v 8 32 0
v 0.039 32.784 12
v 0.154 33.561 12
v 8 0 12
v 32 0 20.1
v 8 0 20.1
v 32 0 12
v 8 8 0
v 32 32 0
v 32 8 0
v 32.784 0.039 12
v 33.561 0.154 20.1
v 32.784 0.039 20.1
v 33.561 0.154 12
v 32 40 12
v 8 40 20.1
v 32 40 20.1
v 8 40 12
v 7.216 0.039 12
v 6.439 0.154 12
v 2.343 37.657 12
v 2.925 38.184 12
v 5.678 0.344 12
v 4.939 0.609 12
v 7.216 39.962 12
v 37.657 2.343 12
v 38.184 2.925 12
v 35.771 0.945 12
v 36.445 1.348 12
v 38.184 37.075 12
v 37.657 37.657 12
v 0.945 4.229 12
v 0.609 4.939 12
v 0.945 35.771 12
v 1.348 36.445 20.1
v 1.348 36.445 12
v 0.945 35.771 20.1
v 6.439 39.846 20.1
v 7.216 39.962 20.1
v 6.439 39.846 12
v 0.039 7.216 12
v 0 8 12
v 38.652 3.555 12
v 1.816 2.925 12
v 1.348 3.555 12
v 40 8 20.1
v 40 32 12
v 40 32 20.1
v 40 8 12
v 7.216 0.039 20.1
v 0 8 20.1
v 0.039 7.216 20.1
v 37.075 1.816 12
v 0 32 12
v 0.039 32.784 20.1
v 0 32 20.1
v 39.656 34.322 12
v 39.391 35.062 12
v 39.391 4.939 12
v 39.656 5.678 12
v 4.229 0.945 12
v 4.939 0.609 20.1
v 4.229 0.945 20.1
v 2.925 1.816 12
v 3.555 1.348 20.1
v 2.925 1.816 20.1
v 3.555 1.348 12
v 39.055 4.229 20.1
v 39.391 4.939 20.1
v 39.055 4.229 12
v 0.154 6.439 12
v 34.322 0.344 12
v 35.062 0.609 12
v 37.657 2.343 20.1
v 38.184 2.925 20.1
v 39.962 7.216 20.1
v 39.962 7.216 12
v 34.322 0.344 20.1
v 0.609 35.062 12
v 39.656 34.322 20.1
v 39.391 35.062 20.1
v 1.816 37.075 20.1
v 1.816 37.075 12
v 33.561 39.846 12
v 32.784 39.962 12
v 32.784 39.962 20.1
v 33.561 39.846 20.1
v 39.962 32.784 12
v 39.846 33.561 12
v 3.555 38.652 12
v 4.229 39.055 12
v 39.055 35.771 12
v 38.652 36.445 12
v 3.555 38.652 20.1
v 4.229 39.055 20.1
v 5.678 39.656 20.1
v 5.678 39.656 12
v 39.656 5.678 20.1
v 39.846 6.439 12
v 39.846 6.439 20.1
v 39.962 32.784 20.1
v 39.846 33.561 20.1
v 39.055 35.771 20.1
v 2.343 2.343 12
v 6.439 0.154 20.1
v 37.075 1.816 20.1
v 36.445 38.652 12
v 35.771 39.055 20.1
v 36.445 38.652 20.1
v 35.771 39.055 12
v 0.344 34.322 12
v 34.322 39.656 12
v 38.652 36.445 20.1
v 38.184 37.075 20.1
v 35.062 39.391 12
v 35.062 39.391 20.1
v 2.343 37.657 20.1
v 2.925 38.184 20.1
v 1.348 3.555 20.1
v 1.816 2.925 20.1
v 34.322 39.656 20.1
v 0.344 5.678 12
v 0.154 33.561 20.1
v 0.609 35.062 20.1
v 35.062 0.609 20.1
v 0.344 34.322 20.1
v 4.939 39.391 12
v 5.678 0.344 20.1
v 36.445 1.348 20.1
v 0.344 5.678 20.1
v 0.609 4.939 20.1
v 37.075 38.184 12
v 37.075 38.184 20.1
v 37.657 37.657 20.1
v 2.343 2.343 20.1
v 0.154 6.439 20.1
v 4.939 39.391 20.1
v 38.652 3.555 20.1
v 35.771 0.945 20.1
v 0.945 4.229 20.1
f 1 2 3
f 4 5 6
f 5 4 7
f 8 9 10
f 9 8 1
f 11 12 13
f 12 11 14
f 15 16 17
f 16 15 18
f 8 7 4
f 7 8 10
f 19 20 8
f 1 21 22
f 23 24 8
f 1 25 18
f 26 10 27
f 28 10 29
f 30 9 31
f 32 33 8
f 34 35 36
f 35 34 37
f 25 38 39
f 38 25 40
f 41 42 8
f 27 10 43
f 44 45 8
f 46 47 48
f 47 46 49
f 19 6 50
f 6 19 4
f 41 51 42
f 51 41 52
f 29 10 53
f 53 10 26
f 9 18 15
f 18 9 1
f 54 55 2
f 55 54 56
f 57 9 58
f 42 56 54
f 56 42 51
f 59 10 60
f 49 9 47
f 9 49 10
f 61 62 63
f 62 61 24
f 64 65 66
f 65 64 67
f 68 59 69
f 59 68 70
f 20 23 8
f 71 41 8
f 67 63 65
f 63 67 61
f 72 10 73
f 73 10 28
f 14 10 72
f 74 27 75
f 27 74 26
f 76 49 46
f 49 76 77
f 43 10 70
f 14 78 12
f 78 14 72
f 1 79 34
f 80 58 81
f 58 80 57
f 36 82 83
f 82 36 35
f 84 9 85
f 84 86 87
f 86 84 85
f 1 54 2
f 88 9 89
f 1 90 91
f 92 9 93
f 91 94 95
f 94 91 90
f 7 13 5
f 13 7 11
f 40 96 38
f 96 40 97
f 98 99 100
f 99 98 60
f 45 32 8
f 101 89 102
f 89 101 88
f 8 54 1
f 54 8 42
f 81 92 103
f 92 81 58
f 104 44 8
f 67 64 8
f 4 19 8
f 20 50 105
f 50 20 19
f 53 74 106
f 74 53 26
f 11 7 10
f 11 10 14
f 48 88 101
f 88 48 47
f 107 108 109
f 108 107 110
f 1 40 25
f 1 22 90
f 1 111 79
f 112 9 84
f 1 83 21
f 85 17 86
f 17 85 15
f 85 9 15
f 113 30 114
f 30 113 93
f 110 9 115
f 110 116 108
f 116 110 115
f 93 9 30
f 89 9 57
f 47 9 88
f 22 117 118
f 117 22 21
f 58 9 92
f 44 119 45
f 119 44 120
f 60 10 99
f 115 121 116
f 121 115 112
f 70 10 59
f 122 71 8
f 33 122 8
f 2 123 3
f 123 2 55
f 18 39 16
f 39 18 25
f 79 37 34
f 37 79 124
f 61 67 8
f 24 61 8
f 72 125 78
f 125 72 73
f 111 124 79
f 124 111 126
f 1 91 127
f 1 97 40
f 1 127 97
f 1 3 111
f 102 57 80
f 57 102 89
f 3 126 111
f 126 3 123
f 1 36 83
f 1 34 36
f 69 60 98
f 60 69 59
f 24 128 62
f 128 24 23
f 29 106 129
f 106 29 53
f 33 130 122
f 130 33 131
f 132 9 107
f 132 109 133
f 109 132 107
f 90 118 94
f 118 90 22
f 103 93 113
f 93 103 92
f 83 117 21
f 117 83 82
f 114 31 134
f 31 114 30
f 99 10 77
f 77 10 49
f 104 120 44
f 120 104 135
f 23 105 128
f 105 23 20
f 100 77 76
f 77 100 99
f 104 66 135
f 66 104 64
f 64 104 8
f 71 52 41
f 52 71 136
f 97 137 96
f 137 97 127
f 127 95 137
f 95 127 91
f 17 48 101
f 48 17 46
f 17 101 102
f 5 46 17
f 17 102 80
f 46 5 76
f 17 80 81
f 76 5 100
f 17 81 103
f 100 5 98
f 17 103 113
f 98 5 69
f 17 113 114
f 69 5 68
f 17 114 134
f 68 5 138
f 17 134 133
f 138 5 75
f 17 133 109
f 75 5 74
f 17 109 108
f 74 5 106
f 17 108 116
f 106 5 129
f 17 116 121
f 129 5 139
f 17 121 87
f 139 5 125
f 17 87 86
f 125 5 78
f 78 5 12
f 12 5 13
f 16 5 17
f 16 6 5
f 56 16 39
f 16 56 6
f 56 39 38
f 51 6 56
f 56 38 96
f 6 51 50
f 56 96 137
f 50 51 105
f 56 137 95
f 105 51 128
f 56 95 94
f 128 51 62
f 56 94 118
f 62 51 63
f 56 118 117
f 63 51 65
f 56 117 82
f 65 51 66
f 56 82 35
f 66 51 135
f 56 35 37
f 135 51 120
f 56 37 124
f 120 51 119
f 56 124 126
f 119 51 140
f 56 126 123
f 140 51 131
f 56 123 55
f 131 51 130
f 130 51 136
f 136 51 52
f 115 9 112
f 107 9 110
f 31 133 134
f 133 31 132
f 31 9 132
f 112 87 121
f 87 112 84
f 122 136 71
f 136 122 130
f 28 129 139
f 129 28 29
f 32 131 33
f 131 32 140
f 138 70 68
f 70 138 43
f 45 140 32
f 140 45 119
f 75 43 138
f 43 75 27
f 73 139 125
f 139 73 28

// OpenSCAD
// Parameters
block_length = 40;
block_width = 40;
block_height = 20;
corner_radius = 8; // Increased for smoother curvature

// Rounded top block with smoother transition
module rounded_edge_block() {
    difference() {
        // Smooth top using hull between top and bottom shapes
        hull() {
            // Bottom shape (sharp edges)
            translate([corner_radius, corner_radius, 0])
                cube([block_length - 2*corner_radius, block_width - 2*corner_radius, block_height - corner_radius]);

            // Top shape (rounded)
            translate([corner_radius, corner_radius, block_height - corner_radius])
                minkowski() {
                    cube([block_length - 2*corner_radius, block_width - 2*corner_radius, 0.1]);
                    cylinder(h=corner_radius, r=corner_radius, $fn=64);
                }
        }

        // Cut bottom to ensure sharp bottom edges
        translate([-10, -10, -10])
            cube([block_length + 20, block_width + 20, corner_radius], center=false);
    }
}

// Render the block, aligned flat on the ground
translate([0, 0, 0])
    rounded_edge_block();
